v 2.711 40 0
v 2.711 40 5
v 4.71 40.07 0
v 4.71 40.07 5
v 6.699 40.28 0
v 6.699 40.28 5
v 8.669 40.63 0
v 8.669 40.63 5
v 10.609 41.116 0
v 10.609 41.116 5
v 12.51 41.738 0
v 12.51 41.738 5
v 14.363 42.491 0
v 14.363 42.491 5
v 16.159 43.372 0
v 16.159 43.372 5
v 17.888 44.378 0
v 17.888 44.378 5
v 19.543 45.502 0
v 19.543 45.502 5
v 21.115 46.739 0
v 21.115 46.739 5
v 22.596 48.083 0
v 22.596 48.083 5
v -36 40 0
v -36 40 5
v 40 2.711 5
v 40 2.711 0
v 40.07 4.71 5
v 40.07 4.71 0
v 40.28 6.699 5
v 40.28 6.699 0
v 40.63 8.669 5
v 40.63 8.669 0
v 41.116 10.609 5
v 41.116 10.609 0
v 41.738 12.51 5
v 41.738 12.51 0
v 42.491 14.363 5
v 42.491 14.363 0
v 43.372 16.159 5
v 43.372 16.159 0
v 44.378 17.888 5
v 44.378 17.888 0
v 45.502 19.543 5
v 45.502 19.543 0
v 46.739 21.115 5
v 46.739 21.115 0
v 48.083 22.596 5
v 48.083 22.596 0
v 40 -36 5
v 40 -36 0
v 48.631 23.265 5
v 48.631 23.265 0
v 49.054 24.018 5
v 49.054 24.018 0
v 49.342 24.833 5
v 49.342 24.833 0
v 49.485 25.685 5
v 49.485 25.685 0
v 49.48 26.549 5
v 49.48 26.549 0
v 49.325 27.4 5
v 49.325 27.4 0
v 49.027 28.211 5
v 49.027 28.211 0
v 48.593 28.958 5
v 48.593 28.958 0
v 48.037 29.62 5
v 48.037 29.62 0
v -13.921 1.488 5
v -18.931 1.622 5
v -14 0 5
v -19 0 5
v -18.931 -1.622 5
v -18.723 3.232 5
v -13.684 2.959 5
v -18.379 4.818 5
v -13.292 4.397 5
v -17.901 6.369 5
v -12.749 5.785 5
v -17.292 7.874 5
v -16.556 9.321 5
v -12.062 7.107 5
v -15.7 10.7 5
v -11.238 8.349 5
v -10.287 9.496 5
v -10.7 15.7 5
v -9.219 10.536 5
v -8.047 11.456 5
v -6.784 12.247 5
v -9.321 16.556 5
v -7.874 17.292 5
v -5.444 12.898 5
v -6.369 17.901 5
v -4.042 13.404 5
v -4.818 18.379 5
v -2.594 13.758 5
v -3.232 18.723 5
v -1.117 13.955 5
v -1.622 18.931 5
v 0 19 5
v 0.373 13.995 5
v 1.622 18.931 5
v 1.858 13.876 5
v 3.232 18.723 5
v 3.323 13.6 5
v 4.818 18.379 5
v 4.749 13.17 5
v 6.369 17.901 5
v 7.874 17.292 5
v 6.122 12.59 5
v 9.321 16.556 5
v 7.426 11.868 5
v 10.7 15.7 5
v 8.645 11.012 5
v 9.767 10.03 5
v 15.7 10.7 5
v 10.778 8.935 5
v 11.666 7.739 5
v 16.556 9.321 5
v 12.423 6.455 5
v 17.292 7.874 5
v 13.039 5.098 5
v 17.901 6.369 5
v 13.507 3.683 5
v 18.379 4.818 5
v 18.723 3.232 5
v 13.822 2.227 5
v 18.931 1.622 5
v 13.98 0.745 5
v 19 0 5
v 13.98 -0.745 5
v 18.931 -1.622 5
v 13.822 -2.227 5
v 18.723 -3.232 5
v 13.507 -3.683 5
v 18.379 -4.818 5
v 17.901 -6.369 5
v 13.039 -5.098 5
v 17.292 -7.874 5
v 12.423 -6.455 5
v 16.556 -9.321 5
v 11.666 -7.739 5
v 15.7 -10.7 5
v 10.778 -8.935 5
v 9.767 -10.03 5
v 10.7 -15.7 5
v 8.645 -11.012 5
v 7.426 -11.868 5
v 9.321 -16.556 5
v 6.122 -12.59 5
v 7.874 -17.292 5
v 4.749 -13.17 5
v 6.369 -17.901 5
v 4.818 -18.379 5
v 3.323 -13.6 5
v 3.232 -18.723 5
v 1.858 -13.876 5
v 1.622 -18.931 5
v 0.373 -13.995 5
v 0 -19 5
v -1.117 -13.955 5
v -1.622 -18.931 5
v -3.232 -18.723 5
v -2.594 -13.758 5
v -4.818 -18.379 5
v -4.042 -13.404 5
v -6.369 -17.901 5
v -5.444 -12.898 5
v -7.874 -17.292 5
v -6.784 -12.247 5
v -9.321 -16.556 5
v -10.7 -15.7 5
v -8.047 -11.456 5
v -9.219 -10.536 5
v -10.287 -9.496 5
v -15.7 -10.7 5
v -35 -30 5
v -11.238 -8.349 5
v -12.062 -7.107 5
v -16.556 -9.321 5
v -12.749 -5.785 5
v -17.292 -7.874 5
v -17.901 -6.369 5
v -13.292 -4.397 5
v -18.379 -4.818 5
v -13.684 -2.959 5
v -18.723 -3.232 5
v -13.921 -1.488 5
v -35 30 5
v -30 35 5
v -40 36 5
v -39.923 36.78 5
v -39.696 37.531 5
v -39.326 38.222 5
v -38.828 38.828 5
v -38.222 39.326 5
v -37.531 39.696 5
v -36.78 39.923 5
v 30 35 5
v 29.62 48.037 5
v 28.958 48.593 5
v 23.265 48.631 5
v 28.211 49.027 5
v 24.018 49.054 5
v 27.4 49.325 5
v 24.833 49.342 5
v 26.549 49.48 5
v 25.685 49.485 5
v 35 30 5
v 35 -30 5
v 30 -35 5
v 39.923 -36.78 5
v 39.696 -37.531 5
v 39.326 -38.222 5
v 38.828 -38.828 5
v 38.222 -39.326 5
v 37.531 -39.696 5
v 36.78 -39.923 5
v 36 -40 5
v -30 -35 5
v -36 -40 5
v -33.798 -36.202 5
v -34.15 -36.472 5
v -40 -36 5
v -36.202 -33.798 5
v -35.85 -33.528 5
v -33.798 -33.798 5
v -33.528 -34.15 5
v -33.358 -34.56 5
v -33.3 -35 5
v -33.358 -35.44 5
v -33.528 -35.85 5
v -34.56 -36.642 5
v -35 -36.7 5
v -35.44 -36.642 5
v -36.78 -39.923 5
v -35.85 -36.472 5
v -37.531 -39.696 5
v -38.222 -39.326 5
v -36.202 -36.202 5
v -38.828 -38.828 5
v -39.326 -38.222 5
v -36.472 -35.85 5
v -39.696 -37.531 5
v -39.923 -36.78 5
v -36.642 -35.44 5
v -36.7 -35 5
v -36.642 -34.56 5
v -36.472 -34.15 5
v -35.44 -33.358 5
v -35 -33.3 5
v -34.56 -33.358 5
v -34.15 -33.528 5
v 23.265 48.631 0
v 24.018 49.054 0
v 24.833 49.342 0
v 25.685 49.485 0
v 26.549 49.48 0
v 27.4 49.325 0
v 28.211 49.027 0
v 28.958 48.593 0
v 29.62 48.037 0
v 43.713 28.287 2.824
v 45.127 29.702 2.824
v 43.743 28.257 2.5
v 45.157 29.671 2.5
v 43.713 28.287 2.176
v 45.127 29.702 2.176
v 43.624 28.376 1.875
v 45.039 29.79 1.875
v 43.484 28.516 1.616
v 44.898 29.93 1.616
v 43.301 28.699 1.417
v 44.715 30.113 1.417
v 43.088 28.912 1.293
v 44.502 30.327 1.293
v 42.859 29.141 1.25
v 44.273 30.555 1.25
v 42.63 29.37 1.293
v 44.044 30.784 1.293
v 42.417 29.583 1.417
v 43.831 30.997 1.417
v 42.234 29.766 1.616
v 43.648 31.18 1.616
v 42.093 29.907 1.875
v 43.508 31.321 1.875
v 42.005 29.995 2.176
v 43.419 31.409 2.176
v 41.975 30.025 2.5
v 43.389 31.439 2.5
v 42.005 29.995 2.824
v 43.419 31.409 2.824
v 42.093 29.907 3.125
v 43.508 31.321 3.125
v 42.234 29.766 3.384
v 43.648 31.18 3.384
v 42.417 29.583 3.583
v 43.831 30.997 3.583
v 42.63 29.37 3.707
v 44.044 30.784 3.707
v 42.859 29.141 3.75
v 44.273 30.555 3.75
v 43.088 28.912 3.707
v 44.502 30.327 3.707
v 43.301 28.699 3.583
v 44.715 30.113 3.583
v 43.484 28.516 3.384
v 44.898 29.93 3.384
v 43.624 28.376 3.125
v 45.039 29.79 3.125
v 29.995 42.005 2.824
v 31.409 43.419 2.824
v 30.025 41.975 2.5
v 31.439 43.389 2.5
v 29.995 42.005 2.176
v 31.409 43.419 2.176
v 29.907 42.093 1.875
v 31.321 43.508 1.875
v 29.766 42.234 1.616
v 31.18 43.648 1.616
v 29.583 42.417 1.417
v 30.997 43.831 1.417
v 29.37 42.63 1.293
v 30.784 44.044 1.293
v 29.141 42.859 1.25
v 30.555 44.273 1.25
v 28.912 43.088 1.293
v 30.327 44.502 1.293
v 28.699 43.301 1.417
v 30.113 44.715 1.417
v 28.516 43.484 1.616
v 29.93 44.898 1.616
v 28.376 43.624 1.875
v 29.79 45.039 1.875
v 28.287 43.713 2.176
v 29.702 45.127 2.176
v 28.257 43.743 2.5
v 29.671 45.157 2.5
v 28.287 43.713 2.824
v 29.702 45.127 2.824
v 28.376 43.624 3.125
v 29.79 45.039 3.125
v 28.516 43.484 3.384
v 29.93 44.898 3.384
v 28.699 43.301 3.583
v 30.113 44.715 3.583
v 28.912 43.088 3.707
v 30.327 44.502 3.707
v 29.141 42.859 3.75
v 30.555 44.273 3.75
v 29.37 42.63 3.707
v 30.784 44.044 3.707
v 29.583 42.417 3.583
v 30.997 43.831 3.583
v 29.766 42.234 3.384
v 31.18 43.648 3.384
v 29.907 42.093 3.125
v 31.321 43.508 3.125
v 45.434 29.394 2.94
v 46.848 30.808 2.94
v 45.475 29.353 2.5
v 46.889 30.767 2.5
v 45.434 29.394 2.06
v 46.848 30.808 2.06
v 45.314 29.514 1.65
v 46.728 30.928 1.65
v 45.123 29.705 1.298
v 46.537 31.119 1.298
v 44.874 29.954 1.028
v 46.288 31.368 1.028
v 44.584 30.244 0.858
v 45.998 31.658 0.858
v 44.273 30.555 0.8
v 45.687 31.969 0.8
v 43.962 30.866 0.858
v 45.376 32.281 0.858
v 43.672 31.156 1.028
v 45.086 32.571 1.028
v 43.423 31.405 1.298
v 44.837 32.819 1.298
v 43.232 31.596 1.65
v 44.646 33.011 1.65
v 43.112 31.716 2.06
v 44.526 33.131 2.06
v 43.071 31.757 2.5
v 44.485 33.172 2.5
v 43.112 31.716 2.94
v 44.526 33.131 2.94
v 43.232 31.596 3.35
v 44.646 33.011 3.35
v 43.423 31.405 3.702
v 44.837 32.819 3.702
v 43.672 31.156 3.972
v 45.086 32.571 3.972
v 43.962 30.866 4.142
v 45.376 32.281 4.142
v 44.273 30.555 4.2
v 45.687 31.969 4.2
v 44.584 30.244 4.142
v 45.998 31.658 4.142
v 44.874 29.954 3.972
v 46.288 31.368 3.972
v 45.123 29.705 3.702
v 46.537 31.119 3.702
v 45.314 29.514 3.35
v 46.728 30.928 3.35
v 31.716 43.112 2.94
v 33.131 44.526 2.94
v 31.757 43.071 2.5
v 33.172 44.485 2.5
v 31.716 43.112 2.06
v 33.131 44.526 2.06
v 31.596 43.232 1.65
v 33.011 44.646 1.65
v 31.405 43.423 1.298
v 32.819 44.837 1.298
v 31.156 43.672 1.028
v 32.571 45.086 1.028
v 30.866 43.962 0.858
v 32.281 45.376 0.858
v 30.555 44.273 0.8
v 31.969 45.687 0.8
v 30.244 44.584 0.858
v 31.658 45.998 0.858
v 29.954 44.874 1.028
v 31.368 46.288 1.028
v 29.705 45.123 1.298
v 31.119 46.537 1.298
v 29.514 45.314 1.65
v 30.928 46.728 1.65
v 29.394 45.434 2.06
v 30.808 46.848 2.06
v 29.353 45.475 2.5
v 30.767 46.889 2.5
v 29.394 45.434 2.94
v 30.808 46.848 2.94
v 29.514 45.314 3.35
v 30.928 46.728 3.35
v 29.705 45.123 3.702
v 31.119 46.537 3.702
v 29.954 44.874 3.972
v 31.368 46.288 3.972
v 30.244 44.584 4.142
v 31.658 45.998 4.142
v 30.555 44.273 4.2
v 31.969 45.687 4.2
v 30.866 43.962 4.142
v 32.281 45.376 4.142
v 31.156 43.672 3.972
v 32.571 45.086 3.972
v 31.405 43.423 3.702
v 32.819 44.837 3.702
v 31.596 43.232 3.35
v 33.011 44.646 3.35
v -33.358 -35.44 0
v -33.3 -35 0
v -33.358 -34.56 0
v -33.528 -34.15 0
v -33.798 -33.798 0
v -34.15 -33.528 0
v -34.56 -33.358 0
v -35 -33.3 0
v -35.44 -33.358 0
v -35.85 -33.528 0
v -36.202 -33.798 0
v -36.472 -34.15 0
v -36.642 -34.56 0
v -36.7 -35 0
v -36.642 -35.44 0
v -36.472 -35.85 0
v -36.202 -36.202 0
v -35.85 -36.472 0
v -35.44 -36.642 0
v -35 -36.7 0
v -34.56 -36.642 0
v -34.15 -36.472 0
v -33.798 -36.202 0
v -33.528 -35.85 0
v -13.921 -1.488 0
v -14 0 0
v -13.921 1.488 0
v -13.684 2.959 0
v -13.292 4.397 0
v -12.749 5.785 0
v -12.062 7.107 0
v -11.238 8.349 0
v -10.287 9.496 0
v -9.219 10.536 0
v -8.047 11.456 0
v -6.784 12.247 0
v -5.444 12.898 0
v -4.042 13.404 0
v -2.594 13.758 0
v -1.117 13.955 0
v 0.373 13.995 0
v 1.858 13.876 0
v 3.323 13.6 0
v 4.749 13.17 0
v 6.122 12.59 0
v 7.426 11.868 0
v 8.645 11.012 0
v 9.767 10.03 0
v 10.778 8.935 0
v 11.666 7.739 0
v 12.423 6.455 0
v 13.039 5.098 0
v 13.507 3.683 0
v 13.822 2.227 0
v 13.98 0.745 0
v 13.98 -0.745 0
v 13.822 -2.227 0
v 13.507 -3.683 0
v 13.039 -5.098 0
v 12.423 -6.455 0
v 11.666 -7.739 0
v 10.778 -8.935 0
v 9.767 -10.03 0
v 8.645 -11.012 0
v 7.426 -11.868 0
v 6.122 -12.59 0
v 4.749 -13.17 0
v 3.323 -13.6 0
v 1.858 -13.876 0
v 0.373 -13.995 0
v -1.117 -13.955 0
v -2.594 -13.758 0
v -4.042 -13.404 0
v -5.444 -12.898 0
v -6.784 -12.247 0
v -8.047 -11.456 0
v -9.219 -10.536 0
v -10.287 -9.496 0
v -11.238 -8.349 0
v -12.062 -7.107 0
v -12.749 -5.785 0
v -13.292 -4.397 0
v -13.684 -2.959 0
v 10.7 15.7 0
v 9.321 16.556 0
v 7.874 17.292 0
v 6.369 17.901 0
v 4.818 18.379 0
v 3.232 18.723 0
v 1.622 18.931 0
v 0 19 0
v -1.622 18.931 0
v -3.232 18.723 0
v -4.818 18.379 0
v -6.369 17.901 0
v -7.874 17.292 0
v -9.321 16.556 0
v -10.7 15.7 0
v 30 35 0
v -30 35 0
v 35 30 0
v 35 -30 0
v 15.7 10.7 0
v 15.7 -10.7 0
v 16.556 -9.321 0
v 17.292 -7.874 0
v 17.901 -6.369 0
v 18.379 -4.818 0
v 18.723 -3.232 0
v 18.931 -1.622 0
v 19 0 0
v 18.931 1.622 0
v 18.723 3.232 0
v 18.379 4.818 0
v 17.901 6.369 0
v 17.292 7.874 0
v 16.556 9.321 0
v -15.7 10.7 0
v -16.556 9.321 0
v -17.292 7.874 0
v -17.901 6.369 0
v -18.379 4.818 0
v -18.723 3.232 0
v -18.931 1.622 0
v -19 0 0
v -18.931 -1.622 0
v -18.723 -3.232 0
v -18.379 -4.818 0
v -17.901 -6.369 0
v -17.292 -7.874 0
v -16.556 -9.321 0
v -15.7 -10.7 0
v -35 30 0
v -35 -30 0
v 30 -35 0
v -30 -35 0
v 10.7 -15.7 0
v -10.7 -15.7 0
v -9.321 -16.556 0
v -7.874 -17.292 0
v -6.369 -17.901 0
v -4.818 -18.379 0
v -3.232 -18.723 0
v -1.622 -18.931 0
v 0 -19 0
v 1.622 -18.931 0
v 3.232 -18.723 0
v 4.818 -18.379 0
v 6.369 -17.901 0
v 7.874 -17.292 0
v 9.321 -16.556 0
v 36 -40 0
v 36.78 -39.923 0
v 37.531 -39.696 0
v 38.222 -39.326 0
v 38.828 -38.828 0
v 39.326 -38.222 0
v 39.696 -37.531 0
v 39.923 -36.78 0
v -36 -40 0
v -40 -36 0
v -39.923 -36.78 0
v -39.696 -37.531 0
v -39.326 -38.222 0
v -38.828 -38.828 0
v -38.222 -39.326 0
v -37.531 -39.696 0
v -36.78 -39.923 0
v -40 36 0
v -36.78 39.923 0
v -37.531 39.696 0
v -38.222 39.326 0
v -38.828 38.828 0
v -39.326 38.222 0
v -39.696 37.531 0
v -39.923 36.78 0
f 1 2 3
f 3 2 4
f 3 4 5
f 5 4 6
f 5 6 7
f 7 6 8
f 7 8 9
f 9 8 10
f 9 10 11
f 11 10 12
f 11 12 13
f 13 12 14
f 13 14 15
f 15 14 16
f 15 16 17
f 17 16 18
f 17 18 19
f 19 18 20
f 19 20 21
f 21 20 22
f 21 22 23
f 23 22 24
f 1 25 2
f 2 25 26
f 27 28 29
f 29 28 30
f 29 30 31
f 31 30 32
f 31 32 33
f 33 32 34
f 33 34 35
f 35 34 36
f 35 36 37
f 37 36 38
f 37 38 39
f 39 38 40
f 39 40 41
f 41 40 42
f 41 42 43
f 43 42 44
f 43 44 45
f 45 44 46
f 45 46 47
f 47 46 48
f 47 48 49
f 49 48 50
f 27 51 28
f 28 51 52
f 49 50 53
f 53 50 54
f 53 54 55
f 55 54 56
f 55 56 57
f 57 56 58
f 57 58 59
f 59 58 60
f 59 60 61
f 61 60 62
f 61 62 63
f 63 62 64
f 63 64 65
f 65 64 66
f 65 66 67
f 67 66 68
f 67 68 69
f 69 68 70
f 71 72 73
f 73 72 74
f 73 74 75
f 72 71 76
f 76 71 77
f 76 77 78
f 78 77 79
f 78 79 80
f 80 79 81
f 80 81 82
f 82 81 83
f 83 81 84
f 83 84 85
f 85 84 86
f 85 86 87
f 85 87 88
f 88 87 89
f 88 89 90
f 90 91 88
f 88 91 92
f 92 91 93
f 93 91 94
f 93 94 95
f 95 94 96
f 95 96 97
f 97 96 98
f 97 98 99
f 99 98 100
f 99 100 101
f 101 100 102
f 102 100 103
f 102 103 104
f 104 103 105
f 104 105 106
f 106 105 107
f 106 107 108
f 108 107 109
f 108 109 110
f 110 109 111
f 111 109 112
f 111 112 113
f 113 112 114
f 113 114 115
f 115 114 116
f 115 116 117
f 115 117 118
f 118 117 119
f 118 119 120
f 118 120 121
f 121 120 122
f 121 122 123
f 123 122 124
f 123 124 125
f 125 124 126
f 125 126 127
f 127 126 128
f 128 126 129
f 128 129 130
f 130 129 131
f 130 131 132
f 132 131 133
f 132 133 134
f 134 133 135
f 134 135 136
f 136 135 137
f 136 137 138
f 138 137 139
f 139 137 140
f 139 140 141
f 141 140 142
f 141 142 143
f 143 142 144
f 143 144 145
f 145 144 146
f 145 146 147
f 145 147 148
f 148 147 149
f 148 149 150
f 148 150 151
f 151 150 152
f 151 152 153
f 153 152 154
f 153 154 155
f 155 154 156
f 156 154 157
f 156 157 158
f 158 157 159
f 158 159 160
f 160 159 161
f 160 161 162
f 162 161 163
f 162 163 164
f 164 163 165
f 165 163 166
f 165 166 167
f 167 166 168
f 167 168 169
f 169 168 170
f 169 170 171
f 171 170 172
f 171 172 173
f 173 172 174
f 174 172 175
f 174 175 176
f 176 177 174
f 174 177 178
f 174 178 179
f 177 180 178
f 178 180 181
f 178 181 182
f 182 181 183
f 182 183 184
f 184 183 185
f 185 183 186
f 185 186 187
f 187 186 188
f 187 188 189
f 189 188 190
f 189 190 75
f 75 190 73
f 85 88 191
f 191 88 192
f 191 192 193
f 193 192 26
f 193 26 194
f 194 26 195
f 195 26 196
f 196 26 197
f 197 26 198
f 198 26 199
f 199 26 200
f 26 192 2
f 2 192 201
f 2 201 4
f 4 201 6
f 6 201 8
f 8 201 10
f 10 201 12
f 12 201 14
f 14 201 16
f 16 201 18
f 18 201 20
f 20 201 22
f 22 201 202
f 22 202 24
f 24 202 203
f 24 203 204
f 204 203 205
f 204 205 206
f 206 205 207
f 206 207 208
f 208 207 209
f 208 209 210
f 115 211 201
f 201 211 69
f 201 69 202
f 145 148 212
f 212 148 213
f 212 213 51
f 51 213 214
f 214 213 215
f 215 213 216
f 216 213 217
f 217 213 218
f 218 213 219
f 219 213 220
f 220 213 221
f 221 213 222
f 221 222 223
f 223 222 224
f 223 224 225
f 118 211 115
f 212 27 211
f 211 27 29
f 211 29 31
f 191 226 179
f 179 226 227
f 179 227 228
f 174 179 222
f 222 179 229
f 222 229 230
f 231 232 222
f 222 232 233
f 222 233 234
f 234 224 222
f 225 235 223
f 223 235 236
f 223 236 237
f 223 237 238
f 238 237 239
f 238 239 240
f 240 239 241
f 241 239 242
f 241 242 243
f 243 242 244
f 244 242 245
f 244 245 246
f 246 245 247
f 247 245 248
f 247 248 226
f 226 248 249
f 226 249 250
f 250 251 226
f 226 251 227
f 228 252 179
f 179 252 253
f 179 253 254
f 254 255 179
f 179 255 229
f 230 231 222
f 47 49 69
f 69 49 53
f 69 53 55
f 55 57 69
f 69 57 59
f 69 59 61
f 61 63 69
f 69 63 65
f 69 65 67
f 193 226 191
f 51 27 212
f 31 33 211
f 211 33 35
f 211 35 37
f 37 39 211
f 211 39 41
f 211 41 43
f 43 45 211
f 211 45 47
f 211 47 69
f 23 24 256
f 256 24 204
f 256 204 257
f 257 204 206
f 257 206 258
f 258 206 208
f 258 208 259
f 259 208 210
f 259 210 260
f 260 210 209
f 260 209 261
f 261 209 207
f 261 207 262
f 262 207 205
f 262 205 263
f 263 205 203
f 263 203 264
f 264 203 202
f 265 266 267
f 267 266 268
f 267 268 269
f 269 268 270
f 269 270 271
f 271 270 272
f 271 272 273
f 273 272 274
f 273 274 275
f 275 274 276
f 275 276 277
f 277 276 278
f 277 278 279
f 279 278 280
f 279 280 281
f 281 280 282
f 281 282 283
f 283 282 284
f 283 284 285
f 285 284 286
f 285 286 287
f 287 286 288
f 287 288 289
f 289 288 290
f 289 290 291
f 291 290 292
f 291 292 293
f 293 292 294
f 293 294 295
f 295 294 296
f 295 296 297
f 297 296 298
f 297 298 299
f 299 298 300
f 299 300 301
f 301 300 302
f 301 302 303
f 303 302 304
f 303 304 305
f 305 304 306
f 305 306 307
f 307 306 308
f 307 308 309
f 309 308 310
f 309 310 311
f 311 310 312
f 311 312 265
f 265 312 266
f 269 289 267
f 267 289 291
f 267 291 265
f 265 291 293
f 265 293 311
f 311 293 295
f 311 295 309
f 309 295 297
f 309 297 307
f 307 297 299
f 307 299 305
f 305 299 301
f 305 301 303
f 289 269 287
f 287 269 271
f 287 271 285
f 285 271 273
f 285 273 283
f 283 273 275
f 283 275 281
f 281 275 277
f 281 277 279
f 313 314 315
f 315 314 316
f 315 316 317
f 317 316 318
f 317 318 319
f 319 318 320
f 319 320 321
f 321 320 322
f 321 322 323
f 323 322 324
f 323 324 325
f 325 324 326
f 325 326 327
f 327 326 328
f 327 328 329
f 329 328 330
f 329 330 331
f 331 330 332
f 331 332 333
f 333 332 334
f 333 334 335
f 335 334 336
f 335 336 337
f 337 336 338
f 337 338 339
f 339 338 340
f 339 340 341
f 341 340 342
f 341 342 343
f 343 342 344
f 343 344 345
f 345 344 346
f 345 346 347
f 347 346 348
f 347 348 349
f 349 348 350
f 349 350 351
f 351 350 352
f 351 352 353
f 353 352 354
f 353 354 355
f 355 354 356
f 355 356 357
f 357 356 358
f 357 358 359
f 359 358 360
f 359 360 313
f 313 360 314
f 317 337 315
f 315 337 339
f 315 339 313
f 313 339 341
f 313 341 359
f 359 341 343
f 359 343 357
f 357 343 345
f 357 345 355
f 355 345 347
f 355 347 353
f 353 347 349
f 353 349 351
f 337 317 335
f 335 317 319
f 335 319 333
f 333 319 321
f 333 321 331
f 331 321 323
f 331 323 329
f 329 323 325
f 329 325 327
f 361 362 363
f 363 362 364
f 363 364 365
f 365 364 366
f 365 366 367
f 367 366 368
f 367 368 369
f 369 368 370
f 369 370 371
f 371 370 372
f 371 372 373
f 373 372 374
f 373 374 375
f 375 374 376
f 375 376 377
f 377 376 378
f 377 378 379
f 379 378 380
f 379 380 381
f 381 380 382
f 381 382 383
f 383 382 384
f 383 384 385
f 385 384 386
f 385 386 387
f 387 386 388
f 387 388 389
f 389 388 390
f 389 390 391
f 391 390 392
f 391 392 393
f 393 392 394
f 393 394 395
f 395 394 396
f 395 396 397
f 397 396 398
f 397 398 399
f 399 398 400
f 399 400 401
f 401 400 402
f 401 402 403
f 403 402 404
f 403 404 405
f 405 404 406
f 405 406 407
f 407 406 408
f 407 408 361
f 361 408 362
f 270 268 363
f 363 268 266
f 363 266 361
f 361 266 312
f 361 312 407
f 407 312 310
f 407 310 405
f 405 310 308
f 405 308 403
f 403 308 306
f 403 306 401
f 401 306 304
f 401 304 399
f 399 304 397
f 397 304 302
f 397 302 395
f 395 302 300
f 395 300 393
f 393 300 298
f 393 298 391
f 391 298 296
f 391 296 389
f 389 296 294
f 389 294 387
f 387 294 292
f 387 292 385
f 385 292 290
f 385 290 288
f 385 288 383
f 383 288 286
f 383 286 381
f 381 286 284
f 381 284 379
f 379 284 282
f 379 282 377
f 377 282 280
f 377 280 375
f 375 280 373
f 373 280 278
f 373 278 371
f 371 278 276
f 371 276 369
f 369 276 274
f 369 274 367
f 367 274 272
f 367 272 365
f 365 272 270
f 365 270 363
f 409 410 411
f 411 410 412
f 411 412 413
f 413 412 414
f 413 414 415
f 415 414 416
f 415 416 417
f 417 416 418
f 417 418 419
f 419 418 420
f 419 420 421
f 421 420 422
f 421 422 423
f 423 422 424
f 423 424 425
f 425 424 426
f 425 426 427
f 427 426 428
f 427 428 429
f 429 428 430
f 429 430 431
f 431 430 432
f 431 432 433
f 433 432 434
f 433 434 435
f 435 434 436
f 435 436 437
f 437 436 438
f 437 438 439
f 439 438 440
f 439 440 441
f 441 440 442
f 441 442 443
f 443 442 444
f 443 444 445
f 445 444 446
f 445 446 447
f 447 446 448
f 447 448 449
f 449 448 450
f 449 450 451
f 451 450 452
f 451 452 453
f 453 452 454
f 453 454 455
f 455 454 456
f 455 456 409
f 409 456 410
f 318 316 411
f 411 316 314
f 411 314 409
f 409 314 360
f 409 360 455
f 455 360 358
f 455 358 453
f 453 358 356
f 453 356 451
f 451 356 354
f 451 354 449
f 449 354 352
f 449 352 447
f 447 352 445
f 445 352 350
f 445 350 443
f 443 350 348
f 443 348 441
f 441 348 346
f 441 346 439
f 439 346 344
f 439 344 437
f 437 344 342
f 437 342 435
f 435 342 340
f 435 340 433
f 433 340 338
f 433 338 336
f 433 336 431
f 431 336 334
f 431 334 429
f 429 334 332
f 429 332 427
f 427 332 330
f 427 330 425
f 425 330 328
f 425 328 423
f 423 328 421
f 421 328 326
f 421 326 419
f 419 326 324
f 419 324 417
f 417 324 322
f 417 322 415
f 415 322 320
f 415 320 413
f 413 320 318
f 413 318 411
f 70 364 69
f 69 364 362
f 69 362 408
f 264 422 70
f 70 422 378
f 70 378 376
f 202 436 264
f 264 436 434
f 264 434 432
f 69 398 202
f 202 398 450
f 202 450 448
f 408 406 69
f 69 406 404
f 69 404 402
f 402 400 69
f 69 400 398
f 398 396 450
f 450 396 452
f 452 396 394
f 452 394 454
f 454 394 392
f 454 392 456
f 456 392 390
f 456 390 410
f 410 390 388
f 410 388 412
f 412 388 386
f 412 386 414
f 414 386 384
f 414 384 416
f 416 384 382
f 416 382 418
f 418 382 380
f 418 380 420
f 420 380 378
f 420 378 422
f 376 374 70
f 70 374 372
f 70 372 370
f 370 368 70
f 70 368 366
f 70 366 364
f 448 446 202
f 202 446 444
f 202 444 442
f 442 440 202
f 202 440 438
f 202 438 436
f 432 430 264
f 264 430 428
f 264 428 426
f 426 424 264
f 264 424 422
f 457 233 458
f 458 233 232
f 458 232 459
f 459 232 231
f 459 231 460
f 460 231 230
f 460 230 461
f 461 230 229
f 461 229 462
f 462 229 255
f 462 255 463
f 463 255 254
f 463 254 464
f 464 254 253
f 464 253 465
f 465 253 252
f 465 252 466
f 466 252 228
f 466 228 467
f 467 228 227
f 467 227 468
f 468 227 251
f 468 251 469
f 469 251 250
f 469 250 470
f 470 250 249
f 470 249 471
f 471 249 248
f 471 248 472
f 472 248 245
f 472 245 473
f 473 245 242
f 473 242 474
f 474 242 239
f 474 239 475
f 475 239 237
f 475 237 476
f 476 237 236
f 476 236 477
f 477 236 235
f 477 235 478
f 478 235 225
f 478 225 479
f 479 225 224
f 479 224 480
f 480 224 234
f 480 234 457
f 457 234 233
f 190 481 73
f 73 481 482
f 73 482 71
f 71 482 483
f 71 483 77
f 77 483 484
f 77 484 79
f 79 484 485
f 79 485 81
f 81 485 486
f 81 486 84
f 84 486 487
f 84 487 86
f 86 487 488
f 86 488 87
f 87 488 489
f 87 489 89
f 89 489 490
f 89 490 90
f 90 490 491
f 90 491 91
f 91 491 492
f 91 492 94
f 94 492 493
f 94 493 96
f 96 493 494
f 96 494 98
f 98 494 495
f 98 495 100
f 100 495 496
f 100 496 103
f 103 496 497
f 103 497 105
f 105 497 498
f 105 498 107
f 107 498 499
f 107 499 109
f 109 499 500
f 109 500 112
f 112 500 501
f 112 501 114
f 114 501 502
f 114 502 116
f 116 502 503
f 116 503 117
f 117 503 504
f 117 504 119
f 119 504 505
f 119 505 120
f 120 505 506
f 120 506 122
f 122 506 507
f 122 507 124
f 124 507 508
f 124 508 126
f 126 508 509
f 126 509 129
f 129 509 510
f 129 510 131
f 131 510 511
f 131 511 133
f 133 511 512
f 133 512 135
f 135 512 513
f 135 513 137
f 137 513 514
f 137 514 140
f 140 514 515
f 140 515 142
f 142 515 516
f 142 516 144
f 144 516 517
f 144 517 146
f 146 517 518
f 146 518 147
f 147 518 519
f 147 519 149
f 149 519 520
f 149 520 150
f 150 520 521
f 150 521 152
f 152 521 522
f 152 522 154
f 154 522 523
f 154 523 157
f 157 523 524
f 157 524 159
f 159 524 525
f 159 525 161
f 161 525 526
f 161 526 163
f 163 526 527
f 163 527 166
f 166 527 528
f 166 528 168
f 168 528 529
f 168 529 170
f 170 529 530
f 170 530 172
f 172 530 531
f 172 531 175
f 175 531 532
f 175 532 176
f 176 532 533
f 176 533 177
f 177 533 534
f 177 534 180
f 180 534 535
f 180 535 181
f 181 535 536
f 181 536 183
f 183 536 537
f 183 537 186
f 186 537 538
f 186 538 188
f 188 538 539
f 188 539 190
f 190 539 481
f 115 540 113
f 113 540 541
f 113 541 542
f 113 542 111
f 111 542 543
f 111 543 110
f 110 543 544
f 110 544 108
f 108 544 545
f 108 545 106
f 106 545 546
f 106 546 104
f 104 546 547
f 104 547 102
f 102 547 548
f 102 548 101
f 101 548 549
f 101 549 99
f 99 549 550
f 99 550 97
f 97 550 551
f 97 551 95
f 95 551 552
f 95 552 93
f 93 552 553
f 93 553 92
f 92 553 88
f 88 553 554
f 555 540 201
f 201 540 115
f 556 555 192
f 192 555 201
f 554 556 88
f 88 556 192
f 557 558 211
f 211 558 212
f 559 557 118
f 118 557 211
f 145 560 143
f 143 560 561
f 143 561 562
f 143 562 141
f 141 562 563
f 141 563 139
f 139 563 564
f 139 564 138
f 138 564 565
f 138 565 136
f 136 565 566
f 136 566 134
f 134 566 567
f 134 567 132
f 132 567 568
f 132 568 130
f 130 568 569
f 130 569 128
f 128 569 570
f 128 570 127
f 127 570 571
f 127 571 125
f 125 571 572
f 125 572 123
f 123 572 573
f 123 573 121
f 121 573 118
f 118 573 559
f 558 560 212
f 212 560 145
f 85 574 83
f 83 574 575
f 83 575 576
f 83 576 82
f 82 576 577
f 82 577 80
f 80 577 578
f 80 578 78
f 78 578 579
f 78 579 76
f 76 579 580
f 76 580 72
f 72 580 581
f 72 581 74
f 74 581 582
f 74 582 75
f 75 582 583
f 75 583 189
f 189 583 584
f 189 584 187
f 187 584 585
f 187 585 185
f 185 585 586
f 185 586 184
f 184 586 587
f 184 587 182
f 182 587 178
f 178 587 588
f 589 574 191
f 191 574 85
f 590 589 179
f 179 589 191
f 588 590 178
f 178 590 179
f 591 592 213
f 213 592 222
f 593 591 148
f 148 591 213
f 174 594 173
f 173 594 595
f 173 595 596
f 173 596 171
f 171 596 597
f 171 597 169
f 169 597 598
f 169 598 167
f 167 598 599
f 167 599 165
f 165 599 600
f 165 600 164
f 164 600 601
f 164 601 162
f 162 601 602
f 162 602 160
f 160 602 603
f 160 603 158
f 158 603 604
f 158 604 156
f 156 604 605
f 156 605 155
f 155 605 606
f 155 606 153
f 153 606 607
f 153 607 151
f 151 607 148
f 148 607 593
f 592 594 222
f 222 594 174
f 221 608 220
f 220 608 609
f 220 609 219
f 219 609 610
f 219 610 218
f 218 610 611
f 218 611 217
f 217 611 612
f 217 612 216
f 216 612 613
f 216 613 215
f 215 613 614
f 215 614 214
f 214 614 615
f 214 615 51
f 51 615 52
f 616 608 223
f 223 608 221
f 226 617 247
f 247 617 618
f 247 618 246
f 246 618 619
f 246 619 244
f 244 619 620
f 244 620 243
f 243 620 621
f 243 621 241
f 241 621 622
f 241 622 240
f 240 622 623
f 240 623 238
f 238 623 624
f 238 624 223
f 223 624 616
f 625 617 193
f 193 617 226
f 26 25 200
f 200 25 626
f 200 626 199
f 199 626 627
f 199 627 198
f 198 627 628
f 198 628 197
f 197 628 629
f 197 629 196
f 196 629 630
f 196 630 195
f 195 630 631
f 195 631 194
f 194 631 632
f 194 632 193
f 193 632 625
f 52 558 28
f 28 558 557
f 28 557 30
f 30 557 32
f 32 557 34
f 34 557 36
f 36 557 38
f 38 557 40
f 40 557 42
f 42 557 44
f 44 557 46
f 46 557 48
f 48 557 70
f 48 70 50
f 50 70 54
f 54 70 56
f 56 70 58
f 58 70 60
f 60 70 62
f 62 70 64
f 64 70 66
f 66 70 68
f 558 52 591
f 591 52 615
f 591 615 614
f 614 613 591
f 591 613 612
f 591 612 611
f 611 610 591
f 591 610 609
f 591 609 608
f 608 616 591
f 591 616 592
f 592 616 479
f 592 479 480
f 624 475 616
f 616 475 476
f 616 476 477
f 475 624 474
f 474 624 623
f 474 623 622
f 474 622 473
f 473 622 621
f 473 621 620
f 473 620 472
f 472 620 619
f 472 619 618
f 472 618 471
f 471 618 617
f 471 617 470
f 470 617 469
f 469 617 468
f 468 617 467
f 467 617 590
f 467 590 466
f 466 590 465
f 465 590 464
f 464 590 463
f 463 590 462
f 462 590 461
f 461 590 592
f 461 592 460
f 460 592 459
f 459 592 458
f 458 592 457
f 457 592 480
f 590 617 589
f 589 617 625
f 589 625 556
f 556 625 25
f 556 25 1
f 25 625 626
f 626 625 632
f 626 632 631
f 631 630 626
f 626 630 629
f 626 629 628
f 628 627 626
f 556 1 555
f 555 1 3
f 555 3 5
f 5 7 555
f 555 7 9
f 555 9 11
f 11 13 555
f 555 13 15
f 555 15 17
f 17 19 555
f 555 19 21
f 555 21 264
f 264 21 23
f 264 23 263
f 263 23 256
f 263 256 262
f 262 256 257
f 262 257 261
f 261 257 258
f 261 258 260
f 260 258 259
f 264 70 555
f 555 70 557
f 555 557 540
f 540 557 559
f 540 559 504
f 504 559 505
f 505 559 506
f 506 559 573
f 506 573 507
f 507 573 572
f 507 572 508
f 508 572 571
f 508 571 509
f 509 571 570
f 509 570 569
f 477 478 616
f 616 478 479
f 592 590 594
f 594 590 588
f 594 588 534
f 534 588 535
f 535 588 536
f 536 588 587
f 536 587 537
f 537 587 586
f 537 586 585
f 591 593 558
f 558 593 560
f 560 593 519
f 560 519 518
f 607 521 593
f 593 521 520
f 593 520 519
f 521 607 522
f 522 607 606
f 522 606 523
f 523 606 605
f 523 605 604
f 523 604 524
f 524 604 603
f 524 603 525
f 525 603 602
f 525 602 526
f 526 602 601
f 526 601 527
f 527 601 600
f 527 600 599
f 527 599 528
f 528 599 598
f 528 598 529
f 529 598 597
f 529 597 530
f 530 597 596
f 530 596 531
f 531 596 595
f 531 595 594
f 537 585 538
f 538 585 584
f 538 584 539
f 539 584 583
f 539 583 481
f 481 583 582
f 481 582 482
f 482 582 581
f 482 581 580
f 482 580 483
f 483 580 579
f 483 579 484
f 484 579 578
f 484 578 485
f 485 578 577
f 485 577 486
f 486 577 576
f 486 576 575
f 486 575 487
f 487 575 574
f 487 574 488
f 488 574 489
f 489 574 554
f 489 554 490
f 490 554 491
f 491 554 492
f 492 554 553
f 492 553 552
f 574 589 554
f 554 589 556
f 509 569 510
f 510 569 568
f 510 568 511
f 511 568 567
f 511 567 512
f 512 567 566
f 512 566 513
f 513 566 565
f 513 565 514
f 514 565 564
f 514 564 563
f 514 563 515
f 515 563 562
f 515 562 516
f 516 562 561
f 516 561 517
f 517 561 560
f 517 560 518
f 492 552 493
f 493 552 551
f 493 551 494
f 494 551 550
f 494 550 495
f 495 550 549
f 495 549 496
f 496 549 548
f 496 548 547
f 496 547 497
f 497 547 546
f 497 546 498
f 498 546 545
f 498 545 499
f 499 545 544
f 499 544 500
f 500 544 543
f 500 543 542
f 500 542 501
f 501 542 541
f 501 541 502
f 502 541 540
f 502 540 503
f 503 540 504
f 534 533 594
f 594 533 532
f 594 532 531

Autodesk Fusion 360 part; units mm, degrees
sketch "스케치1" plane through (0, 0, 0) normal (0, 0, 1) x (1, 0, 0)
  line L0 (-36, 40) -> (36, 40)
  line L1 (40, 36) -> (40, -36)
  line L2 (36, -40) -> (-36, -40)
  line L3 (-40, -36) -> (-40, 36)
  line L4 (-30, 35) -> (30, 35)
  line L5 (35, 30) -> (35, -30)
  line L6 (30, -35) -> (-30, -35)
  line L7 (-35, -30) -> (-35, 30)
  arc A0 (-36, 40) -> (-40, 36) centre (-36, 36) ccw
  arc A1 (40, 36) -> (36, 40) centre (36, 36) ccw
  arc A2 (36, -40) -> (40, -36) centre (36, -36) ccw
  arc A3 (-40, -36) -> (-36, -40) centre (-36, -36) ccw
  arc A4 (-35, -30) -> (-30, -35) centre (-30, -30) ccw
  arc A5 (30, -35) -> (35, -30) centre (30, -30) ccw
  arc A6 (35, 30) -> (30, 35) centre (30, 30) ccw
  arc A7 (-30, 35) -> (-35, 30) centre (-30, 30) ccw
  line L8 (-35, -30) -> (-15.7004, -10.7004)
  line L9 (10.7004, 15.7004) -> (30, 35)
  line L10 (-30, -35) -> (-10.7004, -15.7004)
  line L11 (15.7004, 10.7004) -> (35, 30)
  line L12 (-35, 30) -> (-15.7004, 10.7004)
  line L13 (10.7004, -15.7004) -> (30, -35)
  line L14 (-30, 35) -> (-10.7004, 15.7004)
  line L15 (15.7004, -10.7004) -> (35, -30)
  circle A8 centre (0, 0) radius 14
  arc A9 (-10.7004, -15.7004) -> (10.7004, -15.7004) centre (0, 0) ccw
  arc A10 (15.7004, -10.7004) -> (15.7004, 10.7004) centre (0, 0) ccw
  arc A11 (10.7004, 15.7004) -> (-10.7004, 15.7004) centre (0, 0) ccw
  arc A12 (-15.7004, 10.7004) -> (-15.7004, -10.7004) centre (0, 0) ccw
  point P0 (-40, 40)
  point P1 (40, 40)
  point P2 (40, -40)
  point P3 (-35, 35)
  point P4 (35, -35)
  point P5 (-35, -35)
  dimension "d1" = 80
  dimension "d2" = 80
  dimension "d3" = 40
  dimension "d4" = 40
  dimension "d5" = 70
  dimension "d6" = 70
  dimension "d7" = 5
  dimension "d8" = 5
  dimension "d9" = 4
  dimension "d10" = 38
  dimension "d11" = 5
  dimension "d12" = 28
extrude "돌출1" add sketch "스케치1" along normal blind 5 contours L0 L1 L2 L3 A0 A1 A2 A3 | A4 A5 A6 A7 L8 L9 L10 L11 L12 L13 L14 L15 A9 A10 A11 A12
sketch "스케치2" plane through (0, 0, 5) normal (0, 0, 1) x (-1, 0, 0)
  circle A0 centre (35, 35) radius 1.7
  dimension "d15" = 3.4
extrude "돌출2" cut sketch "스케치2" against normal through all
sketch "스케치9" plane through (0, 0, 0) normal (0, 0, -1) x (1, 0, 0)
  line L0 (15.7004, -10.7004) -> (35, -30)
  arc A0 (36, -40) -> (40, -36) centre (36, -36) ccw construction
  line L1 (51.5725, -26.0844) -> (40, -14.5118) construction
  line L2 (40, -14.5118) -> (51.5725, -26.0844)
  line L3 (38.8284, -38.8284) -> (51.5725, -26.0844)
  line L4 (40, -14.5118) -> (38.8284, -38.8284)
  line L5 (38.8284, -38.8284) -> (26.0844, -51.5725)
  line L6 (14.5118, -40) -> (38.8284, -38.8284)
  line L7 (14.5118, -40) -> (26.0844, -51.5725)
  point P0 (-14.5118, 40)
  point P1 (-40, 14.5118)
extrude "돌출6" add sketch "스케치9" against normal blind 5
sketch "스케치10" plane through (38.8284, 38.8284, 0) normal (0.7071, 0.7071, 0) x (-0.7071, 0.7071, 0)
  circle A0 centre (-9.7, 2.5) radius 1.7
  line L0 (0, 0) -> (0, -7)
  circle A1 centre (9.7, 2.5) radius 1.7
  dimension "d46" = 3.4
  dimension "d47" = 9.7
extrude "돌출7" cut sketch "스케치10" against normal blind 2
sketch "스케치11" plane through (37.4142, 37.4142, 0) normal (0.7071, 0.7071, 0) x (-0.7071, 0.7071, 0)
  circle A0 centre (-9.7, 2.5) radius 1.25
  circle A1 centre (9.7, 2.5) radius 1.25
  point P0 (-9.7, 2.5)
  point P1 (9.7, 2.5)
  dimension "d50" = 2.5
  dimension "d51" = 2.5
extrude "돌출8" cut sketch "스케치11" against normal blind 2
fillet "모깎기1" radius 5 2 edges at (26.0844, 51.5725, 2.5) (51.5725, 26.0844, 2.5)
fillet "모깎기2" radius 28.5 2 edges at (40, 14.5118, 2.5) (14.5118, 40, 2.5)
